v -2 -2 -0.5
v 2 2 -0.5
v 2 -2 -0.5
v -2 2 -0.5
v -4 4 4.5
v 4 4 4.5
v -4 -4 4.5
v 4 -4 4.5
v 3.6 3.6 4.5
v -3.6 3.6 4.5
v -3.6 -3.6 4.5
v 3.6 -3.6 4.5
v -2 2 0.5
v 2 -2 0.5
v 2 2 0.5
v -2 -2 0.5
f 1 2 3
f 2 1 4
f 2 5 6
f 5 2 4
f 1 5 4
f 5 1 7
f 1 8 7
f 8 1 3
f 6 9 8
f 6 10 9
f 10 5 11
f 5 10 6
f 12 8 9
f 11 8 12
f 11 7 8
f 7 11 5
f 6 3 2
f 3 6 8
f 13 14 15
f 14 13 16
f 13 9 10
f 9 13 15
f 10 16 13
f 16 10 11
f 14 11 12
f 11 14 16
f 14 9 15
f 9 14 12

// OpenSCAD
 $fn=50;
 module earthsphere (width, height, angle) {
 scale([1,width,1]){
     linear_extrude(height = height, center = true, convexity = 10,
scale=angle) {
        translate([0, 0, 0]){
            square(size = 4, center=true);
            }
        }
    }
 }

module hollow_earthsphere(width, height, angle) {
    difference(width, height, angle) {
        earthsphere(width, height, angle);
        translate([0,0,1])
        earthsphere(width, height, angle);
    }
}

translate([0,0,2]){
hollow_earthsphere(1,5,2);
}
